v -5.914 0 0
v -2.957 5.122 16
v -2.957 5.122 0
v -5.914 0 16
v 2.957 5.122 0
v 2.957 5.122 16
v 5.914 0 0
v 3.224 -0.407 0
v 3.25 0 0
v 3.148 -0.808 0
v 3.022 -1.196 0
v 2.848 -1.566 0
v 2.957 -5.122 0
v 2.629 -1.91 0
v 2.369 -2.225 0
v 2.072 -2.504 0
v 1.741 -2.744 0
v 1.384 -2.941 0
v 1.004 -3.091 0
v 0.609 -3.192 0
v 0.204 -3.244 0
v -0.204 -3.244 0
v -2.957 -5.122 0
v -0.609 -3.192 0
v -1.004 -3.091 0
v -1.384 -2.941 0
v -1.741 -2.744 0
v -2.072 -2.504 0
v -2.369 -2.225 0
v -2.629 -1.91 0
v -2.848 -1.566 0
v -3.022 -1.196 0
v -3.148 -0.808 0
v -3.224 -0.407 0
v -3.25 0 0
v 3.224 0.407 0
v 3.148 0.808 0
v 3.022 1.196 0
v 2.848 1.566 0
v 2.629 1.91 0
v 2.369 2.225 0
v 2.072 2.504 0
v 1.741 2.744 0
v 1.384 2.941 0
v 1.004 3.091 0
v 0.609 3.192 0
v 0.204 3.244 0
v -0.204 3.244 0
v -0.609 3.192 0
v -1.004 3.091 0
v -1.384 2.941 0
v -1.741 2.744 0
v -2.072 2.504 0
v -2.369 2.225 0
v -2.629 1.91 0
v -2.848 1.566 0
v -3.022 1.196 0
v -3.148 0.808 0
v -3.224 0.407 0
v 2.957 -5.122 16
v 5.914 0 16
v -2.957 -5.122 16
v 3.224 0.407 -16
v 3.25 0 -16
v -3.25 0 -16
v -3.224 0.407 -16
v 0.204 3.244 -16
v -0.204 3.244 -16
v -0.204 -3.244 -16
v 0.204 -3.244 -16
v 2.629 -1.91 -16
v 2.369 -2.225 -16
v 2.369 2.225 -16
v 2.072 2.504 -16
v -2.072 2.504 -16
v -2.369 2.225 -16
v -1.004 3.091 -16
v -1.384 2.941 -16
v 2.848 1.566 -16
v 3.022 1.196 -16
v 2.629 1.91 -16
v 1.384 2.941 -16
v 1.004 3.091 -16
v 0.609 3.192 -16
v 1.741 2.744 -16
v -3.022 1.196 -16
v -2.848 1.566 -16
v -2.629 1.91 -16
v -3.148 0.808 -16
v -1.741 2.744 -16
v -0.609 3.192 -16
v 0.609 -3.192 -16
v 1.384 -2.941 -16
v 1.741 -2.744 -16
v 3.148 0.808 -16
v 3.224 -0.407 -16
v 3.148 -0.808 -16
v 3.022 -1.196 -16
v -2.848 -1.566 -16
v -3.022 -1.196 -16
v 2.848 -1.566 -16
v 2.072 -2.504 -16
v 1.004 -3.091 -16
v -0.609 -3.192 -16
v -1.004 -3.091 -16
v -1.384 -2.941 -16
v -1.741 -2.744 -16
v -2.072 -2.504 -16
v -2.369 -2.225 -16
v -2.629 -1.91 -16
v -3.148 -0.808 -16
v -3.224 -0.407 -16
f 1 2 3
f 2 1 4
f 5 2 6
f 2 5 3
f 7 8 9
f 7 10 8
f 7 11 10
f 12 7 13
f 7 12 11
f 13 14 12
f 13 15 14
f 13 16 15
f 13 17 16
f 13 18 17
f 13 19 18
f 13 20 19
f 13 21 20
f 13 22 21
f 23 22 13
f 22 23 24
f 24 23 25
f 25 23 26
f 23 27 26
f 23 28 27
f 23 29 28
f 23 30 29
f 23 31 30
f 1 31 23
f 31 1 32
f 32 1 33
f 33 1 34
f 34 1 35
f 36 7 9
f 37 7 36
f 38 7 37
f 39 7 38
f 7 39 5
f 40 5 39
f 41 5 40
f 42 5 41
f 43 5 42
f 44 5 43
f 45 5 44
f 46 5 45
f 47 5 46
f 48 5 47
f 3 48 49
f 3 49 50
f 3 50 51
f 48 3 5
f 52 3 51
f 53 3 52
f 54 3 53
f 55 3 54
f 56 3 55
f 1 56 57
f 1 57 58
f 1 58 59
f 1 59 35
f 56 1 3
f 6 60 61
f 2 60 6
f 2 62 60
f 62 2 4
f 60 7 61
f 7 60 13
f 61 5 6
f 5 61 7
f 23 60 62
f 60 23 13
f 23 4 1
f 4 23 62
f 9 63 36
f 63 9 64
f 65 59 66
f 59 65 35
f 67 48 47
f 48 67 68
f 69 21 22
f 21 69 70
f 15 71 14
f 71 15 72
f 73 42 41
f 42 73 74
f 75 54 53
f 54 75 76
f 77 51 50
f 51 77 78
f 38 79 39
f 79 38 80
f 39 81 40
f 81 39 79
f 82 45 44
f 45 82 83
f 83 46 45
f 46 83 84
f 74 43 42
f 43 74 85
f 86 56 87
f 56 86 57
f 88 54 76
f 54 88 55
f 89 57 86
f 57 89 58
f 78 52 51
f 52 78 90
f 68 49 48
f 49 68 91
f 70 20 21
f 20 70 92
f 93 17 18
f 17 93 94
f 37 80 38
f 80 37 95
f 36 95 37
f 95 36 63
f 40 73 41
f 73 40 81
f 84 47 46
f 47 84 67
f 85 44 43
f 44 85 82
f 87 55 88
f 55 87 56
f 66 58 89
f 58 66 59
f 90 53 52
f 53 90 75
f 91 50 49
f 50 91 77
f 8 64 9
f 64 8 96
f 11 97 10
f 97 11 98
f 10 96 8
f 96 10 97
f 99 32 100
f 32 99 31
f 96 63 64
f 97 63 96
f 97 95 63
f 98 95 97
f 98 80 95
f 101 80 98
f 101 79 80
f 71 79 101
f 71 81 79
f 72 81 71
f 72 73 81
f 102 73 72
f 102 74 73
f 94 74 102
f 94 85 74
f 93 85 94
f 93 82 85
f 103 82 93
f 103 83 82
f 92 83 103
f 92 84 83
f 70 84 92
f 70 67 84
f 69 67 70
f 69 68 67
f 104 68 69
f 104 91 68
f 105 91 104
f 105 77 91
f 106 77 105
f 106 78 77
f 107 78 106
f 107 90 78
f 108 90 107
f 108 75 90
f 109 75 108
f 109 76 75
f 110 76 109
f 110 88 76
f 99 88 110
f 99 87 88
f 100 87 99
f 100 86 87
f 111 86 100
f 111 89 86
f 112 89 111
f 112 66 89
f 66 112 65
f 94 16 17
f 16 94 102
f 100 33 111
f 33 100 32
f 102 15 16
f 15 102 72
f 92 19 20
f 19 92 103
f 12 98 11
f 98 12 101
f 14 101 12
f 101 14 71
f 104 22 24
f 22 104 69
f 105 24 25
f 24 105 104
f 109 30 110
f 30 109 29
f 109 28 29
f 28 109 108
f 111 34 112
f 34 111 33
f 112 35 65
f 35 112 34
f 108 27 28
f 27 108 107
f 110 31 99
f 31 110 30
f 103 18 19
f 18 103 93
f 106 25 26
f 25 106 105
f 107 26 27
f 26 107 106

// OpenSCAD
$fn = 50;


difference() {
	union() {
		translate(v = [0, 0, 0]) {
			rotate(a = [0, 0, 0]) {
				translate(v = [0, 0, 0]) {
					rotate(a = [0, 0, 0]) {
						linear_extrude(height = 16) {
							polygon(points = [[5.9142500000, 0.0000000000], [2.9571250000, 5.1218907443], [-2.9571250000, 5.1218907443], [-5.9142500000, 0.0000000000], [-2.9571250000, -5.1218907443], [2.9571250000, -5.1218907443]]);
						}
					}
				}
			}
		}
		translate(v = [0, 0, -16]) {
			rotate(a = [0, 0, 0]) {
				cylinder(h = 16, r = 3.2500000000);
			}
		}
	}
	union();
}
